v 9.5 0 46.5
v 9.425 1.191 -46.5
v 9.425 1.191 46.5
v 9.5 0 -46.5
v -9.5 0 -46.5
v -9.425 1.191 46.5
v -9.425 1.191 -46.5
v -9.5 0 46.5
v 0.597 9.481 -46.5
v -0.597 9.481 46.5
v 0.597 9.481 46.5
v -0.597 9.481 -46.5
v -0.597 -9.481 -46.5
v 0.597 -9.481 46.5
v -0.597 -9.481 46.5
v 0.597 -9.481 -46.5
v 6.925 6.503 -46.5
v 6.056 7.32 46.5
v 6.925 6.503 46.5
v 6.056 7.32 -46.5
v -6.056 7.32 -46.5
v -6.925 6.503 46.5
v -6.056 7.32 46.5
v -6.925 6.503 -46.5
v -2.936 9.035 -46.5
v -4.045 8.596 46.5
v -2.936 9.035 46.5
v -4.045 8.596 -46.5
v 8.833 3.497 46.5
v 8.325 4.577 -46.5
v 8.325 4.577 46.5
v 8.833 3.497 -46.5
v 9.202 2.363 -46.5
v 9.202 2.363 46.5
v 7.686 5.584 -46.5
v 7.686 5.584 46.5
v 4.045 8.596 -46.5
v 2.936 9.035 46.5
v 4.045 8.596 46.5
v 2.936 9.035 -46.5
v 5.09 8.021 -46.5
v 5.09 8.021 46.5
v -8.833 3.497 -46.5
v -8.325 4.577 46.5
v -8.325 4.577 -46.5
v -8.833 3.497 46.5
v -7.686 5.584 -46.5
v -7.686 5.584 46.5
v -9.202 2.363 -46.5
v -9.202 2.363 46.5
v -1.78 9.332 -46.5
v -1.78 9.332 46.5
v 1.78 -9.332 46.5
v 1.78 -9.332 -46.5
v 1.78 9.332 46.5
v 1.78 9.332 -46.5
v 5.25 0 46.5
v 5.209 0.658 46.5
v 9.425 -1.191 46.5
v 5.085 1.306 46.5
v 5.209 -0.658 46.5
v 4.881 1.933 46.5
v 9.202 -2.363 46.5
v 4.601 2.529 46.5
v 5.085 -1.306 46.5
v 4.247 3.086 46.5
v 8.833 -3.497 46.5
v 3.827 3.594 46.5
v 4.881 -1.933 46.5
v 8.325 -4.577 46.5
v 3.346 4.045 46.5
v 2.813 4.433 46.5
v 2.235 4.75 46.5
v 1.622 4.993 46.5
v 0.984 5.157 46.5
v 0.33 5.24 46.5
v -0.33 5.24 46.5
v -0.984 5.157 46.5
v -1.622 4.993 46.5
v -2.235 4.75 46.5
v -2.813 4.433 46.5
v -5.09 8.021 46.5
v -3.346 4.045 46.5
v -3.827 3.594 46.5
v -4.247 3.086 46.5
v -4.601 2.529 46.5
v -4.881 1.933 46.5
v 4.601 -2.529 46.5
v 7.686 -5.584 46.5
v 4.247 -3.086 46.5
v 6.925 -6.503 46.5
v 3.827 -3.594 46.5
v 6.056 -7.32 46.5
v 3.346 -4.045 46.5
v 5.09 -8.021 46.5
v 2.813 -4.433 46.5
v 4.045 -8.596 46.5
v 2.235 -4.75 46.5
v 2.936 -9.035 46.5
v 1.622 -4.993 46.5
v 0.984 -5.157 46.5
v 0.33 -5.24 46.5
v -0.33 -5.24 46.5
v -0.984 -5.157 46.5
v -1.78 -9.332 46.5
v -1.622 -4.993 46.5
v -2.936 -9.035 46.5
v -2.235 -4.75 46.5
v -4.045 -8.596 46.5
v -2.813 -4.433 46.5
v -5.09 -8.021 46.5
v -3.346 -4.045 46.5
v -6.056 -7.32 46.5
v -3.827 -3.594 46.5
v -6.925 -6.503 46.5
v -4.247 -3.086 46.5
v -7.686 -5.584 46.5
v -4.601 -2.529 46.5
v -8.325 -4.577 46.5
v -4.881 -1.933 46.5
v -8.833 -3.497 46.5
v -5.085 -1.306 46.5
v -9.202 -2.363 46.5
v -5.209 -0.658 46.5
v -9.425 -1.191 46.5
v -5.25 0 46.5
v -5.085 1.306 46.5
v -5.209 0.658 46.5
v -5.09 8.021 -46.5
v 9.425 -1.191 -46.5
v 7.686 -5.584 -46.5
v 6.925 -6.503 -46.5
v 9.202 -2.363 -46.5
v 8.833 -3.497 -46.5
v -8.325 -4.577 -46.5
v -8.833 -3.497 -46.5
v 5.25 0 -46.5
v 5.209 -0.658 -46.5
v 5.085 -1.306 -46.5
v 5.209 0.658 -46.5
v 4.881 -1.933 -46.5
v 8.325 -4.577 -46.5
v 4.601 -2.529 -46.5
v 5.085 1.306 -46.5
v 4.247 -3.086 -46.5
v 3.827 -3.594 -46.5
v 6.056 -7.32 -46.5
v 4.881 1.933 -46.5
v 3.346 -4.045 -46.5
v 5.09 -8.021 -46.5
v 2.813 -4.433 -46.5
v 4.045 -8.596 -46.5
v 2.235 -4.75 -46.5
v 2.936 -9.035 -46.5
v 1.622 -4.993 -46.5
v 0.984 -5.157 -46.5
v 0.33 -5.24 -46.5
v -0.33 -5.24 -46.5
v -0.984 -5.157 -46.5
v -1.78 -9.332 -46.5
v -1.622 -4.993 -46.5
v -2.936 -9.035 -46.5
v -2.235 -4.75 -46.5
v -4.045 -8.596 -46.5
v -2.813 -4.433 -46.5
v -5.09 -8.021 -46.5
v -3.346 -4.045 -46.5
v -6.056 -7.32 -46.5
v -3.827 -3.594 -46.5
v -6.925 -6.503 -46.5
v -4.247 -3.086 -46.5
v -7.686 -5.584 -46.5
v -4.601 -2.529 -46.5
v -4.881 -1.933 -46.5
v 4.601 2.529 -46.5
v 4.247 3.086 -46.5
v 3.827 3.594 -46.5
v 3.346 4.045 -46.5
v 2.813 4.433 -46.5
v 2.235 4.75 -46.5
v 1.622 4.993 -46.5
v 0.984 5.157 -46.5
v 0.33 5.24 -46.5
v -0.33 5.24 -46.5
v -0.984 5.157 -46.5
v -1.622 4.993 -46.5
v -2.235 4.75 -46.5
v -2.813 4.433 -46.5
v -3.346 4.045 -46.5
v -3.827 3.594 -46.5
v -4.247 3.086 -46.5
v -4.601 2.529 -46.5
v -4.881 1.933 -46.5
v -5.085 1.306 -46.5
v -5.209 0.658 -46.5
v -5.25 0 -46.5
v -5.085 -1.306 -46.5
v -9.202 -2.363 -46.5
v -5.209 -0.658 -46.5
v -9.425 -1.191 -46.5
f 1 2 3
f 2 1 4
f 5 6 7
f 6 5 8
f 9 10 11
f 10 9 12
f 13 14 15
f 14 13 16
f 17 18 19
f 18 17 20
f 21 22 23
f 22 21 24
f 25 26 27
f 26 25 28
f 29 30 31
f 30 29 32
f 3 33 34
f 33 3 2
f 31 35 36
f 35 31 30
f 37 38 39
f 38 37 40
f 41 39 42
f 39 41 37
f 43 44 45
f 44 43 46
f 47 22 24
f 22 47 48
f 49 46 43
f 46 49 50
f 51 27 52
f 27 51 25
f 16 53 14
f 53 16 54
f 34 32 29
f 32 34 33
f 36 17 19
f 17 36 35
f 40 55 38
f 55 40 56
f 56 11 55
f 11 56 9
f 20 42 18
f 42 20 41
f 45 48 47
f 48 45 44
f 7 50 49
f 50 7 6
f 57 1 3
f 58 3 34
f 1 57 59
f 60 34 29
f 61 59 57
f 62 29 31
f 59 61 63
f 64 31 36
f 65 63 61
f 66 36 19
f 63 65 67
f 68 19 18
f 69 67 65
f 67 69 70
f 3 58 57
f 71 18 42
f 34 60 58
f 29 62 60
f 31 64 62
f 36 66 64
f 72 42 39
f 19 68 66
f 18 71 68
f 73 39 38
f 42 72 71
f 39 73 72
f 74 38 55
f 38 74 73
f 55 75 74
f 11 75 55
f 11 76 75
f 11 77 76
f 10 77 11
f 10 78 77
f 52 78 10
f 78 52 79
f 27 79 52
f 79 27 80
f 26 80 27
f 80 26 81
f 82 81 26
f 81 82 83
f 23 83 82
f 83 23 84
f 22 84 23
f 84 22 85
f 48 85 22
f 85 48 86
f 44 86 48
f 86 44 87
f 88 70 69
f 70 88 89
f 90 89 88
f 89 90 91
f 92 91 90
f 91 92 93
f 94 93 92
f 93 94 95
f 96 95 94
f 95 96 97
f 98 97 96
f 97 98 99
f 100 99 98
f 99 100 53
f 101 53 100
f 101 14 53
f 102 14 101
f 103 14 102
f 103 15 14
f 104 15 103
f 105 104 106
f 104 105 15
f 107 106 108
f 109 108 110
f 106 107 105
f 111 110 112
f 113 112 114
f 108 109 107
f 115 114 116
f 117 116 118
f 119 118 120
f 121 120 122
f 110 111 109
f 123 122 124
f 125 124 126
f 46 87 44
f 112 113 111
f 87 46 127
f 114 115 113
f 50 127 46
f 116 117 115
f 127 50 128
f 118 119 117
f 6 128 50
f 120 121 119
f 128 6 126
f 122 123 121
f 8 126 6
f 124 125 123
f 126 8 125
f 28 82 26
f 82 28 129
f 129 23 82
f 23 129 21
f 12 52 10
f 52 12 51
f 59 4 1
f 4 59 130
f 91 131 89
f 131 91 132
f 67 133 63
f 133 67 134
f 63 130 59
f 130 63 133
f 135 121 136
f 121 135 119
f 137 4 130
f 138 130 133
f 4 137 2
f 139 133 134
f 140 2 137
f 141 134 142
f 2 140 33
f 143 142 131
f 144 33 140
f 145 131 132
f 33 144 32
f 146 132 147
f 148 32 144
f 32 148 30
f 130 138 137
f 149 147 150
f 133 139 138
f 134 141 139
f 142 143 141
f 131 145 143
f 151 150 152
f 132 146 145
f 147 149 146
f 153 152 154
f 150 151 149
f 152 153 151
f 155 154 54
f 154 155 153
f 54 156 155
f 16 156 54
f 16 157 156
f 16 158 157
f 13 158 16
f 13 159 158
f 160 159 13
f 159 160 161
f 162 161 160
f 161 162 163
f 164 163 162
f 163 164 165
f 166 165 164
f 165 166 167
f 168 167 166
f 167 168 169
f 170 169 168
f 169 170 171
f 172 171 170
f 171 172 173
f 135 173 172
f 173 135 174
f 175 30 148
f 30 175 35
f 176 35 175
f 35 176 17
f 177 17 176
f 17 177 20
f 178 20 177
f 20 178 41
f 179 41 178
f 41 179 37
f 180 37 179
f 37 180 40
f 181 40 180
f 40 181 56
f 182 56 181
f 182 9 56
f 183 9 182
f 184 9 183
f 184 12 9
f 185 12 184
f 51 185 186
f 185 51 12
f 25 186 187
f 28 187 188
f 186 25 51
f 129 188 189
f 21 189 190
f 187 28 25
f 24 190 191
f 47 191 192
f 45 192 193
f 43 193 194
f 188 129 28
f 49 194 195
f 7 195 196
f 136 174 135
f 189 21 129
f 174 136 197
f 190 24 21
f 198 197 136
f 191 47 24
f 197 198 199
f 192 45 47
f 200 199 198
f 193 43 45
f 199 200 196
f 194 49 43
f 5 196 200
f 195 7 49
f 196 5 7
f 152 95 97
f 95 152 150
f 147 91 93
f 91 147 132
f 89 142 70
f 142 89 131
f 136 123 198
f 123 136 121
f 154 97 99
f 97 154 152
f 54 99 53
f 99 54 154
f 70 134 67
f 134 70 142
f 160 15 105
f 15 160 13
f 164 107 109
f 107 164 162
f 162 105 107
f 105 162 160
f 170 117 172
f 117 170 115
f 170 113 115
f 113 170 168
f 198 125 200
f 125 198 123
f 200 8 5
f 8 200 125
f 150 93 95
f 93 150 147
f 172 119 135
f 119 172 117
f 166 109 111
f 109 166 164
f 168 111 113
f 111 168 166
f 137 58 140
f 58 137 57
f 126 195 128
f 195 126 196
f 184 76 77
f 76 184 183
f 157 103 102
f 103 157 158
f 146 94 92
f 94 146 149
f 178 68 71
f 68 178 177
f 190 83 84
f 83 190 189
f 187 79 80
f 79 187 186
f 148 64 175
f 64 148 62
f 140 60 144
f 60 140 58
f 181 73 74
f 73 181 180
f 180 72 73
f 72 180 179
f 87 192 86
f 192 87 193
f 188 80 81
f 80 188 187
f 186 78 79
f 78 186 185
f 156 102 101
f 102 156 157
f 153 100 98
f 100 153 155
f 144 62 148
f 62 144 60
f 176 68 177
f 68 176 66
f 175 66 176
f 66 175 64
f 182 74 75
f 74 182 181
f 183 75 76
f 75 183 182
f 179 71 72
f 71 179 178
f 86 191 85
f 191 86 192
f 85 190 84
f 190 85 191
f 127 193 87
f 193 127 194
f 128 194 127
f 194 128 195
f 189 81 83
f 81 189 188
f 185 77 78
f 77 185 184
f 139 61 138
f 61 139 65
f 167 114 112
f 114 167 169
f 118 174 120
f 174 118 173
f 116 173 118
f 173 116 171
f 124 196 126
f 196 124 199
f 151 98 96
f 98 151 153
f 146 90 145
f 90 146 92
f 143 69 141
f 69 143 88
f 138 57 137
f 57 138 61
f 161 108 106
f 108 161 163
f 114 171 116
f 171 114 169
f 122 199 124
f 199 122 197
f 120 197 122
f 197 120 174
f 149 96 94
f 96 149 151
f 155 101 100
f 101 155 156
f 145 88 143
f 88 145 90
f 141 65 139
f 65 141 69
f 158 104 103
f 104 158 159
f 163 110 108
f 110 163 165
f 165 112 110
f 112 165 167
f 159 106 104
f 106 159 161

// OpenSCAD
$fn = 50;


difference() {
	union() {
		translate(v = [0, 0, -46.5000000000]) {
			cylinder(h = 93, r = 9.5000000000);
		}
	}
	union() {
		translate(v = [0, 0, -100.0000000000]) {
			cylinder(h = 200, r = 5.2500000000);
		}
	}
}
